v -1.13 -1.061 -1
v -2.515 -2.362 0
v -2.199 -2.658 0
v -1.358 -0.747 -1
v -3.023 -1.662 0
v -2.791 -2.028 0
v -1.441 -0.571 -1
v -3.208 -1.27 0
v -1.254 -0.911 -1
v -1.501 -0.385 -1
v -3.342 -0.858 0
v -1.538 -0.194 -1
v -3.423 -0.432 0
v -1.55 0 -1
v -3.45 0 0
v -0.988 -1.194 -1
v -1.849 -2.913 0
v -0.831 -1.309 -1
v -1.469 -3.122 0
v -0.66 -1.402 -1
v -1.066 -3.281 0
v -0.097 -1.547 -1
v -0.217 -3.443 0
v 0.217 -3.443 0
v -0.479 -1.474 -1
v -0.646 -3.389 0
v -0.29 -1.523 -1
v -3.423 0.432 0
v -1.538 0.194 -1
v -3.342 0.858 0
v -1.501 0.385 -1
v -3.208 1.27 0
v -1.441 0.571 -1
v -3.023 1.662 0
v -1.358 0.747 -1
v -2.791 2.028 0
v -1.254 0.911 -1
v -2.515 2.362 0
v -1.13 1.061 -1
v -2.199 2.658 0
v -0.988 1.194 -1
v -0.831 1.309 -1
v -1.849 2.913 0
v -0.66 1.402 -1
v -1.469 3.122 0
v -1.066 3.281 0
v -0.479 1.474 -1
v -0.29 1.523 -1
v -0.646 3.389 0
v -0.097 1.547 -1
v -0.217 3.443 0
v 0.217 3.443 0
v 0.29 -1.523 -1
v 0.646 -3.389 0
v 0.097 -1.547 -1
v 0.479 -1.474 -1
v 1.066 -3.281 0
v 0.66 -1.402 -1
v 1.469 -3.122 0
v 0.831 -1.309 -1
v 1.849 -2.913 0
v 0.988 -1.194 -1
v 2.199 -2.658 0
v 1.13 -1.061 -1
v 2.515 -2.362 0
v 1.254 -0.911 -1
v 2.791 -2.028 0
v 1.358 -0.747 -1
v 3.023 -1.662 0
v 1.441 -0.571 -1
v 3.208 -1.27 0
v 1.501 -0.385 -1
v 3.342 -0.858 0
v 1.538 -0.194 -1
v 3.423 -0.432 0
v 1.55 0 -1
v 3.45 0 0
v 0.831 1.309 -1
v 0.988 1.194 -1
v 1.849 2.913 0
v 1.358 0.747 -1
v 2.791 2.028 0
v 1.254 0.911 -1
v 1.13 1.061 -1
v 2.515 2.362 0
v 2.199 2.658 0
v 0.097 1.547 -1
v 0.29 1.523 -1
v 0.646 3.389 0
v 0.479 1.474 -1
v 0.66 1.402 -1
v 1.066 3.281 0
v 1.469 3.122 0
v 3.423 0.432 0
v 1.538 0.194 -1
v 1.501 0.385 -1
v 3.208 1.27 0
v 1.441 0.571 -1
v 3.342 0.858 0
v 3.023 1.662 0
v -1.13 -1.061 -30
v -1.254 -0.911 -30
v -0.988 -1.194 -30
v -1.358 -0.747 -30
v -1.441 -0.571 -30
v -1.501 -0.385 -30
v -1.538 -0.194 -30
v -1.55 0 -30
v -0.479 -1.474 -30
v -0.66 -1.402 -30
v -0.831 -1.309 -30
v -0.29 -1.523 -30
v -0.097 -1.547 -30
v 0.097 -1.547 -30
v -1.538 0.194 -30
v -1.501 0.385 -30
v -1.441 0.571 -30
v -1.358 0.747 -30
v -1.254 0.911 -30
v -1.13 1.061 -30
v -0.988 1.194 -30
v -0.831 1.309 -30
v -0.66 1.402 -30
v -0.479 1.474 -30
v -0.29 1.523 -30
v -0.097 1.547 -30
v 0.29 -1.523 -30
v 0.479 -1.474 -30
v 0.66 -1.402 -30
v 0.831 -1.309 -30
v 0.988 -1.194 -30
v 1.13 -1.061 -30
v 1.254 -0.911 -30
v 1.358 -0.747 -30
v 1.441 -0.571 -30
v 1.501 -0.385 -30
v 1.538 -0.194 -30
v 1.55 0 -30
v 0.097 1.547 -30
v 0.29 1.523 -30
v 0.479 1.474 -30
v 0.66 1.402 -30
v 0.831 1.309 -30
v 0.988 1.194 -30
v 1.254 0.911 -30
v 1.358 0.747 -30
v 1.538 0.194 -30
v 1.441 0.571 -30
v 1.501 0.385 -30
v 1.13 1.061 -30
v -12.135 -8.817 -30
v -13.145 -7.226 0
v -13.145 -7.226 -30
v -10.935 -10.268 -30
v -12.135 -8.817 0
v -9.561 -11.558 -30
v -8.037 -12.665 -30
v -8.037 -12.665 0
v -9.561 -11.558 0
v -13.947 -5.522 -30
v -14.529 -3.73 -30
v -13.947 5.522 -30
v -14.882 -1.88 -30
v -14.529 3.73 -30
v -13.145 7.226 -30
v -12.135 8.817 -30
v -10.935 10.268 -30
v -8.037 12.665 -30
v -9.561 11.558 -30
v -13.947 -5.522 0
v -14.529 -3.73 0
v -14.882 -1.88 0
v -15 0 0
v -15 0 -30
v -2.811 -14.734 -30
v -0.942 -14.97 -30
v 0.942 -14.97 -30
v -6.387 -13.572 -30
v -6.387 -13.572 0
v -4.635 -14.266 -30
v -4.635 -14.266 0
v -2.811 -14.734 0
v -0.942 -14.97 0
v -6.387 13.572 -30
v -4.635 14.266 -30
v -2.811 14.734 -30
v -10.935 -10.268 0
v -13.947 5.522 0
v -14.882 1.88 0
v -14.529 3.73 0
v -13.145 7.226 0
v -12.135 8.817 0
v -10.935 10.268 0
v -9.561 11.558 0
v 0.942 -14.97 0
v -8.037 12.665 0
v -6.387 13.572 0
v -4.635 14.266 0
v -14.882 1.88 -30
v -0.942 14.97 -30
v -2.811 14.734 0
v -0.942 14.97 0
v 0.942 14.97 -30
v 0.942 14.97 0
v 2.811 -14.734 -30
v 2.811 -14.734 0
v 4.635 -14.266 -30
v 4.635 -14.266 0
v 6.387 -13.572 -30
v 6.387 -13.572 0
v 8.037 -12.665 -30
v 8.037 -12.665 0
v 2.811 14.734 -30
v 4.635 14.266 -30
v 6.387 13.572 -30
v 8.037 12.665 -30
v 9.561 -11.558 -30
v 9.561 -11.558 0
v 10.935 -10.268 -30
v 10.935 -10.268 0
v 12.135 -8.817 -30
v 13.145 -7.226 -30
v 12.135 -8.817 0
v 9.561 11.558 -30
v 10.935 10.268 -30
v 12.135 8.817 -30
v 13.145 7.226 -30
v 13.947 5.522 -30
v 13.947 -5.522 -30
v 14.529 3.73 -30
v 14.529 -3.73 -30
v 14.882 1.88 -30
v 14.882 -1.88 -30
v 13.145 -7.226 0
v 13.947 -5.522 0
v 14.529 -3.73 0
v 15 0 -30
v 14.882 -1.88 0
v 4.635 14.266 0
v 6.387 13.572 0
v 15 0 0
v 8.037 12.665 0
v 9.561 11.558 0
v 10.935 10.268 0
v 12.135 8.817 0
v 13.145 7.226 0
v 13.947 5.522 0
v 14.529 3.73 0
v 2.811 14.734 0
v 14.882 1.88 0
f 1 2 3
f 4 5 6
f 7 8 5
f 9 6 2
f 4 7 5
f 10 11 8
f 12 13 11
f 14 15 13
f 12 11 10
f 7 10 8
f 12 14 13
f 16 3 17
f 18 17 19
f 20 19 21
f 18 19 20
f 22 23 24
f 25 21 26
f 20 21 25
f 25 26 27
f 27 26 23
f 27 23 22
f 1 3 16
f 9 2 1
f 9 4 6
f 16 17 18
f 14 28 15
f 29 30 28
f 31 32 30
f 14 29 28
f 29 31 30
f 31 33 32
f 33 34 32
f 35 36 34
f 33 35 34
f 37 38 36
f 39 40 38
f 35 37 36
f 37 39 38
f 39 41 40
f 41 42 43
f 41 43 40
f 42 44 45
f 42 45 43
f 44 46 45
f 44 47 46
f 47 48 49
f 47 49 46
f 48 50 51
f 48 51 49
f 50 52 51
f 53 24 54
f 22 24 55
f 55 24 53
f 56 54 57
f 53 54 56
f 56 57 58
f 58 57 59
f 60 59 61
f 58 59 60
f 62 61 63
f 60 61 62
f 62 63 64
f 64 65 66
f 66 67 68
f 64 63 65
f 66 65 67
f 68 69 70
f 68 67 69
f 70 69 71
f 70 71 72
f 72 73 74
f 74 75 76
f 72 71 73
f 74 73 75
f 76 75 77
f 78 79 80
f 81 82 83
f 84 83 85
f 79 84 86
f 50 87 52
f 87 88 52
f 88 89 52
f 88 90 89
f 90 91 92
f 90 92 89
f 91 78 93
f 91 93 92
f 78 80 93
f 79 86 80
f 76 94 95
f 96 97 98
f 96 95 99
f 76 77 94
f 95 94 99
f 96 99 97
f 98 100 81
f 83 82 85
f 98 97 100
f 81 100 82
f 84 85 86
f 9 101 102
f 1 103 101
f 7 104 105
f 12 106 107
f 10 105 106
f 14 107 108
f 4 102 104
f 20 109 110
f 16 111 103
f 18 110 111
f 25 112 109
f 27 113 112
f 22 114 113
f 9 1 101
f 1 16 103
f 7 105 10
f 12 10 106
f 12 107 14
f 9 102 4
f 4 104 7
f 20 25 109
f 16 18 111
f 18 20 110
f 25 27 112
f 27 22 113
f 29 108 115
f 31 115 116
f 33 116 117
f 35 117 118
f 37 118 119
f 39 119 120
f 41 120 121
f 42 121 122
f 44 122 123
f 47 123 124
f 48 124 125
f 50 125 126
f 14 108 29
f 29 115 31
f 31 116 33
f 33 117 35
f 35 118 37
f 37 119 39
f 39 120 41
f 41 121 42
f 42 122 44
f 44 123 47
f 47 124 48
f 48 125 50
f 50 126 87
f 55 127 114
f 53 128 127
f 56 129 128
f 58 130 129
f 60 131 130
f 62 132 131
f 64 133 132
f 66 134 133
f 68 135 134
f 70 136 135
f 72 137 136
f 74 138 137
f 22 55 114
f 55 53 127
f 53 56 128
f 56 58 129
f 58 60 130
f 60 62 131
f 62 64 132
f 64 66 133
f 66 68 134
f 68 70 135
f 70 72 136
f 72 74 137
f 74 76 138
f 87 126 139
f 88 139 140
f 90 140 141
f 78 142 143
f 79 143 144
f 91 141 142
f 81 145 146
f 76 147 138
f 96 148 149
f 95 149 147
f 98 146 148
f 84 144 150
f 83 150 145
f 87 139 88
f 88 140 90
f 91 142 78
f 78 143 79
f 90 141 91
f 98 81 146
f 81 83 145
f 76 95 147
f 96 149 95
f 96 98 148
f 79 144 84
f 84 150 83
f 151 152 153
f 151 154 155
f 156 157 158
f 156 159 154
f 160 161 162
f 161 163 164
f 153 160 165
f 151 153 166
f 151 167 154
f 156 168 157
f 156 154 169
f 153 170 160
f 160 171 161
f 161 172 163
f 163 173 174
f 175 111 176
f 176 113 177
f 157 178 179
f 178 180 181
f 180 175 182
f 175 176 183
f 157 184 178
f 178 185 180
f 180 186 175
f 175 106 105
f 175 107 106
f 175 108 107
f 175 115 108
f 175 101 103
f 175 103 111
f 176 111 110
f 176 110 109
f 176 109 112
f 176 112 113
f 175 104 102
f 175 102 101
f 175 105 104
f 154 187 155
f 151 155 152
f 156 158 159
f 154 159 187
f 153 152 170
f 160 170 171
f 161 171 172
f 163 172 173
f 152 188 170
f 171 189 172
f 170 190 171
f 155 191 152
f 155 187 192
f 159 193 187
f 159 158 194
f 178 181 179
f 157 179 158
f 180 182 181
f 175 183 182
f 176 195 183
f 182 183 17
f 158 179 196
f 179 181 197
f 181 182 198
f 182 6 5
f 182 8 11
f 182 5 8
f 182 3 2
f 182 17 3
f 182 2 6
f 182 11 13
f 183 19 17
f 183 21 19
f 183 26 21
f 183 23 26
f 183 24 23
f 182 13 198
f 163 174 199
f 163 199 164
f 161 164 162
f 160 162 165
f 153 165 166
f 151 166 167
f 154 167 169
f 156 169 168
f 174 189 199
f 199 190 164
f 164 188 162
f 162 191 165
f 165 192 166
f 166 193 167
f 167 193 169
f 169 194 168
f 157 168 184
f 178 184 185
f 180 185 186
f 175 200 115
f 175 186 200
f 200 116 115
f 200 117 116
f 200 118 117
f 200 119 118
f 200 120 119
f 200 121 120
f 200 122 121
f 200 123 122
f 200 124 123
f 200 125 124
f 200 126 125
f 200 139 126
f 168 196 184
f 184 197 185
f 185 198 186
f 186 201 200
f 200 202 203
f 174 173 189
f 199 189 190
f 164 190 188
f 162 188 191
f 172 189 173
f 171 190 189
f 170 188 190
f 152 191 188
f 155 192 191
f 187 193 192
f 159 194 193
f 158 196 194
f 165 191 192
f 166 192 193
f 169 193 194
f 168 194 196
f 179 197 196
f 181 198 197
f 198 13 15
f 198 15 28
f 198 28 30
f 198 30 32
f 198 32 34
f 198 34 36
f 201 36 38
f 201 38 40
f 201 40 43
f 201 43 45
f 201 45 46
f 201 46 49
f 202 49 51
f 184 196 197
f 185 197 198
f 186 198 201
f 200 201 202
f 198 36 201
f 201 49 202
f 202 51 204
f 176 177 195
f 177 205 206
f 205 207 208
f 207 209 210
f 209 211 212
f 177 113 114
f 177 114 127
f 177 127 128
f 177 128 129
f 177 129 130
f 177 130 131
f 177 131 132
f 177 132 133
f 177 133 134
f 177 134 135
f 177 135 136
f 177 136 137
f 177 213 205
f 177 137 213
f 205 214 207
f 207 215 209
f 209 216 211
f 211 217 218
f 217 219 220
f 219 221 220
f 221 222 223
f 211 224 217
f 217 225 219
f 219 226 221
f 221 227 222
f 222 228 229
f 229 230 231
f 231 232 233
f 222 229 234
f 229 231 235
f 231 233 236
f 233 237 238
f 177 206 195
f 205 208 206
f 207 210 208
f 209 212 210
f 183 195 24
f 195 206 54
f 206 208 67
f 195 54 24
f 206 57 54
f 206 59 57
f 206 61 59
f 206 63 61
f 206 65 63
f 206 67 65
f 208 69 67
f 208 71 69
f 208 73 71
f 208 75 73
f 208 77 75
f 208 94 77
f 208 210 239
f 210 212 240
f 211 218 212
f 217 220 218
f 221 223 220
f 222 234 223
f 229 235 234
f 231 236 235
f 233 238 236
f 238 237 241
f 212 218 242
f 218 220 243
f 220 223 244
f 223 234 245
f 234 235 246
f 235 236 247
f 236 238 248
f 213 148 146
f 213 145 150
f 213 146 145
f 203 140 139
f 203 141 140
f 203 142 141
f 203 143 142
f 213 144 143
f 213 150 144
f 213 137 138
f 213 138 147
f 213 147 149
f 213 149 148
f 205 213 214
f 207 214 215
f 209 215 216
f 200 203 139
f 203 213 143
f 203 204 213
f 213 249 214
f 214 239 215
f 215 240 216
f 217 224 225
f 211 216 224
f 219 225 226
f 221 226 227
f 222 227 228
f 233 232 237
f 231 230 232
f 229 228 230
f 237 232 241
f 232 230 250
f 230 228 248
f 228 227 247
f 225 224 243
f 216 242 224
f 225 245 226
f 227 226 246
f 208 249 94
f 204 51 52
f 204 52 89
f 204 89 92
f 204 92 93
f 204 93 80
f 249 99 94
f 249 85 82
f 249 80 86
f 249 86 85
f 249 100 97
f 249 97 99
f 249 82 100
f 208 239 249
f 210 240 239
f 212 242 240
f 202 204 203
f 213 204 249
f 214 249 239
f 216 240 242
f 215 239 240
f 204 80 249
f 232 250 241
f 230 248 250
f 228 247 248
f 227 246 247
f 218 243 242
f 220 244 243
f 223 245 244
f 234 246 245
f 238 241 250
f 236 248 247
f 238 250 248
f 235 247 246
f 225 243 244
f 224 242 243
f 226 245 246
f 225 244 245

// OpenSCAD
$fn = 50;


difference() {
	union() {
		translate(v = [0, 0, -30.0000000000]) {
			cylinder(h = 30, r = 15.0000000000);
		}
	}
	union() {
		translate(v = [0, 0, 0]) {
			rotate(a = [0, 0, 0]) {
				difference() {
					union() {
						translate(v = [0, 0, -33.0000000000]) {
							cylinder(h = 33, r = 1.2500000000);
						}
						translate(v = [0, 0, -1.0000000000]) {
							cylinder(h = 1.0000000000, r1 = 1.5500000000, r2 = 3.4500000000);
						}
						translate(v = [0, 0, -33.0000000000]) {
							cylinder(h = 33, r = 1.5500000000);
						}
						translate(v = [0, 0, -33.0000000000]) {
							cylinder(h = 33, r = 1.2500000000);
						}
					}
					union();
				}
			}
		}
	}
}
